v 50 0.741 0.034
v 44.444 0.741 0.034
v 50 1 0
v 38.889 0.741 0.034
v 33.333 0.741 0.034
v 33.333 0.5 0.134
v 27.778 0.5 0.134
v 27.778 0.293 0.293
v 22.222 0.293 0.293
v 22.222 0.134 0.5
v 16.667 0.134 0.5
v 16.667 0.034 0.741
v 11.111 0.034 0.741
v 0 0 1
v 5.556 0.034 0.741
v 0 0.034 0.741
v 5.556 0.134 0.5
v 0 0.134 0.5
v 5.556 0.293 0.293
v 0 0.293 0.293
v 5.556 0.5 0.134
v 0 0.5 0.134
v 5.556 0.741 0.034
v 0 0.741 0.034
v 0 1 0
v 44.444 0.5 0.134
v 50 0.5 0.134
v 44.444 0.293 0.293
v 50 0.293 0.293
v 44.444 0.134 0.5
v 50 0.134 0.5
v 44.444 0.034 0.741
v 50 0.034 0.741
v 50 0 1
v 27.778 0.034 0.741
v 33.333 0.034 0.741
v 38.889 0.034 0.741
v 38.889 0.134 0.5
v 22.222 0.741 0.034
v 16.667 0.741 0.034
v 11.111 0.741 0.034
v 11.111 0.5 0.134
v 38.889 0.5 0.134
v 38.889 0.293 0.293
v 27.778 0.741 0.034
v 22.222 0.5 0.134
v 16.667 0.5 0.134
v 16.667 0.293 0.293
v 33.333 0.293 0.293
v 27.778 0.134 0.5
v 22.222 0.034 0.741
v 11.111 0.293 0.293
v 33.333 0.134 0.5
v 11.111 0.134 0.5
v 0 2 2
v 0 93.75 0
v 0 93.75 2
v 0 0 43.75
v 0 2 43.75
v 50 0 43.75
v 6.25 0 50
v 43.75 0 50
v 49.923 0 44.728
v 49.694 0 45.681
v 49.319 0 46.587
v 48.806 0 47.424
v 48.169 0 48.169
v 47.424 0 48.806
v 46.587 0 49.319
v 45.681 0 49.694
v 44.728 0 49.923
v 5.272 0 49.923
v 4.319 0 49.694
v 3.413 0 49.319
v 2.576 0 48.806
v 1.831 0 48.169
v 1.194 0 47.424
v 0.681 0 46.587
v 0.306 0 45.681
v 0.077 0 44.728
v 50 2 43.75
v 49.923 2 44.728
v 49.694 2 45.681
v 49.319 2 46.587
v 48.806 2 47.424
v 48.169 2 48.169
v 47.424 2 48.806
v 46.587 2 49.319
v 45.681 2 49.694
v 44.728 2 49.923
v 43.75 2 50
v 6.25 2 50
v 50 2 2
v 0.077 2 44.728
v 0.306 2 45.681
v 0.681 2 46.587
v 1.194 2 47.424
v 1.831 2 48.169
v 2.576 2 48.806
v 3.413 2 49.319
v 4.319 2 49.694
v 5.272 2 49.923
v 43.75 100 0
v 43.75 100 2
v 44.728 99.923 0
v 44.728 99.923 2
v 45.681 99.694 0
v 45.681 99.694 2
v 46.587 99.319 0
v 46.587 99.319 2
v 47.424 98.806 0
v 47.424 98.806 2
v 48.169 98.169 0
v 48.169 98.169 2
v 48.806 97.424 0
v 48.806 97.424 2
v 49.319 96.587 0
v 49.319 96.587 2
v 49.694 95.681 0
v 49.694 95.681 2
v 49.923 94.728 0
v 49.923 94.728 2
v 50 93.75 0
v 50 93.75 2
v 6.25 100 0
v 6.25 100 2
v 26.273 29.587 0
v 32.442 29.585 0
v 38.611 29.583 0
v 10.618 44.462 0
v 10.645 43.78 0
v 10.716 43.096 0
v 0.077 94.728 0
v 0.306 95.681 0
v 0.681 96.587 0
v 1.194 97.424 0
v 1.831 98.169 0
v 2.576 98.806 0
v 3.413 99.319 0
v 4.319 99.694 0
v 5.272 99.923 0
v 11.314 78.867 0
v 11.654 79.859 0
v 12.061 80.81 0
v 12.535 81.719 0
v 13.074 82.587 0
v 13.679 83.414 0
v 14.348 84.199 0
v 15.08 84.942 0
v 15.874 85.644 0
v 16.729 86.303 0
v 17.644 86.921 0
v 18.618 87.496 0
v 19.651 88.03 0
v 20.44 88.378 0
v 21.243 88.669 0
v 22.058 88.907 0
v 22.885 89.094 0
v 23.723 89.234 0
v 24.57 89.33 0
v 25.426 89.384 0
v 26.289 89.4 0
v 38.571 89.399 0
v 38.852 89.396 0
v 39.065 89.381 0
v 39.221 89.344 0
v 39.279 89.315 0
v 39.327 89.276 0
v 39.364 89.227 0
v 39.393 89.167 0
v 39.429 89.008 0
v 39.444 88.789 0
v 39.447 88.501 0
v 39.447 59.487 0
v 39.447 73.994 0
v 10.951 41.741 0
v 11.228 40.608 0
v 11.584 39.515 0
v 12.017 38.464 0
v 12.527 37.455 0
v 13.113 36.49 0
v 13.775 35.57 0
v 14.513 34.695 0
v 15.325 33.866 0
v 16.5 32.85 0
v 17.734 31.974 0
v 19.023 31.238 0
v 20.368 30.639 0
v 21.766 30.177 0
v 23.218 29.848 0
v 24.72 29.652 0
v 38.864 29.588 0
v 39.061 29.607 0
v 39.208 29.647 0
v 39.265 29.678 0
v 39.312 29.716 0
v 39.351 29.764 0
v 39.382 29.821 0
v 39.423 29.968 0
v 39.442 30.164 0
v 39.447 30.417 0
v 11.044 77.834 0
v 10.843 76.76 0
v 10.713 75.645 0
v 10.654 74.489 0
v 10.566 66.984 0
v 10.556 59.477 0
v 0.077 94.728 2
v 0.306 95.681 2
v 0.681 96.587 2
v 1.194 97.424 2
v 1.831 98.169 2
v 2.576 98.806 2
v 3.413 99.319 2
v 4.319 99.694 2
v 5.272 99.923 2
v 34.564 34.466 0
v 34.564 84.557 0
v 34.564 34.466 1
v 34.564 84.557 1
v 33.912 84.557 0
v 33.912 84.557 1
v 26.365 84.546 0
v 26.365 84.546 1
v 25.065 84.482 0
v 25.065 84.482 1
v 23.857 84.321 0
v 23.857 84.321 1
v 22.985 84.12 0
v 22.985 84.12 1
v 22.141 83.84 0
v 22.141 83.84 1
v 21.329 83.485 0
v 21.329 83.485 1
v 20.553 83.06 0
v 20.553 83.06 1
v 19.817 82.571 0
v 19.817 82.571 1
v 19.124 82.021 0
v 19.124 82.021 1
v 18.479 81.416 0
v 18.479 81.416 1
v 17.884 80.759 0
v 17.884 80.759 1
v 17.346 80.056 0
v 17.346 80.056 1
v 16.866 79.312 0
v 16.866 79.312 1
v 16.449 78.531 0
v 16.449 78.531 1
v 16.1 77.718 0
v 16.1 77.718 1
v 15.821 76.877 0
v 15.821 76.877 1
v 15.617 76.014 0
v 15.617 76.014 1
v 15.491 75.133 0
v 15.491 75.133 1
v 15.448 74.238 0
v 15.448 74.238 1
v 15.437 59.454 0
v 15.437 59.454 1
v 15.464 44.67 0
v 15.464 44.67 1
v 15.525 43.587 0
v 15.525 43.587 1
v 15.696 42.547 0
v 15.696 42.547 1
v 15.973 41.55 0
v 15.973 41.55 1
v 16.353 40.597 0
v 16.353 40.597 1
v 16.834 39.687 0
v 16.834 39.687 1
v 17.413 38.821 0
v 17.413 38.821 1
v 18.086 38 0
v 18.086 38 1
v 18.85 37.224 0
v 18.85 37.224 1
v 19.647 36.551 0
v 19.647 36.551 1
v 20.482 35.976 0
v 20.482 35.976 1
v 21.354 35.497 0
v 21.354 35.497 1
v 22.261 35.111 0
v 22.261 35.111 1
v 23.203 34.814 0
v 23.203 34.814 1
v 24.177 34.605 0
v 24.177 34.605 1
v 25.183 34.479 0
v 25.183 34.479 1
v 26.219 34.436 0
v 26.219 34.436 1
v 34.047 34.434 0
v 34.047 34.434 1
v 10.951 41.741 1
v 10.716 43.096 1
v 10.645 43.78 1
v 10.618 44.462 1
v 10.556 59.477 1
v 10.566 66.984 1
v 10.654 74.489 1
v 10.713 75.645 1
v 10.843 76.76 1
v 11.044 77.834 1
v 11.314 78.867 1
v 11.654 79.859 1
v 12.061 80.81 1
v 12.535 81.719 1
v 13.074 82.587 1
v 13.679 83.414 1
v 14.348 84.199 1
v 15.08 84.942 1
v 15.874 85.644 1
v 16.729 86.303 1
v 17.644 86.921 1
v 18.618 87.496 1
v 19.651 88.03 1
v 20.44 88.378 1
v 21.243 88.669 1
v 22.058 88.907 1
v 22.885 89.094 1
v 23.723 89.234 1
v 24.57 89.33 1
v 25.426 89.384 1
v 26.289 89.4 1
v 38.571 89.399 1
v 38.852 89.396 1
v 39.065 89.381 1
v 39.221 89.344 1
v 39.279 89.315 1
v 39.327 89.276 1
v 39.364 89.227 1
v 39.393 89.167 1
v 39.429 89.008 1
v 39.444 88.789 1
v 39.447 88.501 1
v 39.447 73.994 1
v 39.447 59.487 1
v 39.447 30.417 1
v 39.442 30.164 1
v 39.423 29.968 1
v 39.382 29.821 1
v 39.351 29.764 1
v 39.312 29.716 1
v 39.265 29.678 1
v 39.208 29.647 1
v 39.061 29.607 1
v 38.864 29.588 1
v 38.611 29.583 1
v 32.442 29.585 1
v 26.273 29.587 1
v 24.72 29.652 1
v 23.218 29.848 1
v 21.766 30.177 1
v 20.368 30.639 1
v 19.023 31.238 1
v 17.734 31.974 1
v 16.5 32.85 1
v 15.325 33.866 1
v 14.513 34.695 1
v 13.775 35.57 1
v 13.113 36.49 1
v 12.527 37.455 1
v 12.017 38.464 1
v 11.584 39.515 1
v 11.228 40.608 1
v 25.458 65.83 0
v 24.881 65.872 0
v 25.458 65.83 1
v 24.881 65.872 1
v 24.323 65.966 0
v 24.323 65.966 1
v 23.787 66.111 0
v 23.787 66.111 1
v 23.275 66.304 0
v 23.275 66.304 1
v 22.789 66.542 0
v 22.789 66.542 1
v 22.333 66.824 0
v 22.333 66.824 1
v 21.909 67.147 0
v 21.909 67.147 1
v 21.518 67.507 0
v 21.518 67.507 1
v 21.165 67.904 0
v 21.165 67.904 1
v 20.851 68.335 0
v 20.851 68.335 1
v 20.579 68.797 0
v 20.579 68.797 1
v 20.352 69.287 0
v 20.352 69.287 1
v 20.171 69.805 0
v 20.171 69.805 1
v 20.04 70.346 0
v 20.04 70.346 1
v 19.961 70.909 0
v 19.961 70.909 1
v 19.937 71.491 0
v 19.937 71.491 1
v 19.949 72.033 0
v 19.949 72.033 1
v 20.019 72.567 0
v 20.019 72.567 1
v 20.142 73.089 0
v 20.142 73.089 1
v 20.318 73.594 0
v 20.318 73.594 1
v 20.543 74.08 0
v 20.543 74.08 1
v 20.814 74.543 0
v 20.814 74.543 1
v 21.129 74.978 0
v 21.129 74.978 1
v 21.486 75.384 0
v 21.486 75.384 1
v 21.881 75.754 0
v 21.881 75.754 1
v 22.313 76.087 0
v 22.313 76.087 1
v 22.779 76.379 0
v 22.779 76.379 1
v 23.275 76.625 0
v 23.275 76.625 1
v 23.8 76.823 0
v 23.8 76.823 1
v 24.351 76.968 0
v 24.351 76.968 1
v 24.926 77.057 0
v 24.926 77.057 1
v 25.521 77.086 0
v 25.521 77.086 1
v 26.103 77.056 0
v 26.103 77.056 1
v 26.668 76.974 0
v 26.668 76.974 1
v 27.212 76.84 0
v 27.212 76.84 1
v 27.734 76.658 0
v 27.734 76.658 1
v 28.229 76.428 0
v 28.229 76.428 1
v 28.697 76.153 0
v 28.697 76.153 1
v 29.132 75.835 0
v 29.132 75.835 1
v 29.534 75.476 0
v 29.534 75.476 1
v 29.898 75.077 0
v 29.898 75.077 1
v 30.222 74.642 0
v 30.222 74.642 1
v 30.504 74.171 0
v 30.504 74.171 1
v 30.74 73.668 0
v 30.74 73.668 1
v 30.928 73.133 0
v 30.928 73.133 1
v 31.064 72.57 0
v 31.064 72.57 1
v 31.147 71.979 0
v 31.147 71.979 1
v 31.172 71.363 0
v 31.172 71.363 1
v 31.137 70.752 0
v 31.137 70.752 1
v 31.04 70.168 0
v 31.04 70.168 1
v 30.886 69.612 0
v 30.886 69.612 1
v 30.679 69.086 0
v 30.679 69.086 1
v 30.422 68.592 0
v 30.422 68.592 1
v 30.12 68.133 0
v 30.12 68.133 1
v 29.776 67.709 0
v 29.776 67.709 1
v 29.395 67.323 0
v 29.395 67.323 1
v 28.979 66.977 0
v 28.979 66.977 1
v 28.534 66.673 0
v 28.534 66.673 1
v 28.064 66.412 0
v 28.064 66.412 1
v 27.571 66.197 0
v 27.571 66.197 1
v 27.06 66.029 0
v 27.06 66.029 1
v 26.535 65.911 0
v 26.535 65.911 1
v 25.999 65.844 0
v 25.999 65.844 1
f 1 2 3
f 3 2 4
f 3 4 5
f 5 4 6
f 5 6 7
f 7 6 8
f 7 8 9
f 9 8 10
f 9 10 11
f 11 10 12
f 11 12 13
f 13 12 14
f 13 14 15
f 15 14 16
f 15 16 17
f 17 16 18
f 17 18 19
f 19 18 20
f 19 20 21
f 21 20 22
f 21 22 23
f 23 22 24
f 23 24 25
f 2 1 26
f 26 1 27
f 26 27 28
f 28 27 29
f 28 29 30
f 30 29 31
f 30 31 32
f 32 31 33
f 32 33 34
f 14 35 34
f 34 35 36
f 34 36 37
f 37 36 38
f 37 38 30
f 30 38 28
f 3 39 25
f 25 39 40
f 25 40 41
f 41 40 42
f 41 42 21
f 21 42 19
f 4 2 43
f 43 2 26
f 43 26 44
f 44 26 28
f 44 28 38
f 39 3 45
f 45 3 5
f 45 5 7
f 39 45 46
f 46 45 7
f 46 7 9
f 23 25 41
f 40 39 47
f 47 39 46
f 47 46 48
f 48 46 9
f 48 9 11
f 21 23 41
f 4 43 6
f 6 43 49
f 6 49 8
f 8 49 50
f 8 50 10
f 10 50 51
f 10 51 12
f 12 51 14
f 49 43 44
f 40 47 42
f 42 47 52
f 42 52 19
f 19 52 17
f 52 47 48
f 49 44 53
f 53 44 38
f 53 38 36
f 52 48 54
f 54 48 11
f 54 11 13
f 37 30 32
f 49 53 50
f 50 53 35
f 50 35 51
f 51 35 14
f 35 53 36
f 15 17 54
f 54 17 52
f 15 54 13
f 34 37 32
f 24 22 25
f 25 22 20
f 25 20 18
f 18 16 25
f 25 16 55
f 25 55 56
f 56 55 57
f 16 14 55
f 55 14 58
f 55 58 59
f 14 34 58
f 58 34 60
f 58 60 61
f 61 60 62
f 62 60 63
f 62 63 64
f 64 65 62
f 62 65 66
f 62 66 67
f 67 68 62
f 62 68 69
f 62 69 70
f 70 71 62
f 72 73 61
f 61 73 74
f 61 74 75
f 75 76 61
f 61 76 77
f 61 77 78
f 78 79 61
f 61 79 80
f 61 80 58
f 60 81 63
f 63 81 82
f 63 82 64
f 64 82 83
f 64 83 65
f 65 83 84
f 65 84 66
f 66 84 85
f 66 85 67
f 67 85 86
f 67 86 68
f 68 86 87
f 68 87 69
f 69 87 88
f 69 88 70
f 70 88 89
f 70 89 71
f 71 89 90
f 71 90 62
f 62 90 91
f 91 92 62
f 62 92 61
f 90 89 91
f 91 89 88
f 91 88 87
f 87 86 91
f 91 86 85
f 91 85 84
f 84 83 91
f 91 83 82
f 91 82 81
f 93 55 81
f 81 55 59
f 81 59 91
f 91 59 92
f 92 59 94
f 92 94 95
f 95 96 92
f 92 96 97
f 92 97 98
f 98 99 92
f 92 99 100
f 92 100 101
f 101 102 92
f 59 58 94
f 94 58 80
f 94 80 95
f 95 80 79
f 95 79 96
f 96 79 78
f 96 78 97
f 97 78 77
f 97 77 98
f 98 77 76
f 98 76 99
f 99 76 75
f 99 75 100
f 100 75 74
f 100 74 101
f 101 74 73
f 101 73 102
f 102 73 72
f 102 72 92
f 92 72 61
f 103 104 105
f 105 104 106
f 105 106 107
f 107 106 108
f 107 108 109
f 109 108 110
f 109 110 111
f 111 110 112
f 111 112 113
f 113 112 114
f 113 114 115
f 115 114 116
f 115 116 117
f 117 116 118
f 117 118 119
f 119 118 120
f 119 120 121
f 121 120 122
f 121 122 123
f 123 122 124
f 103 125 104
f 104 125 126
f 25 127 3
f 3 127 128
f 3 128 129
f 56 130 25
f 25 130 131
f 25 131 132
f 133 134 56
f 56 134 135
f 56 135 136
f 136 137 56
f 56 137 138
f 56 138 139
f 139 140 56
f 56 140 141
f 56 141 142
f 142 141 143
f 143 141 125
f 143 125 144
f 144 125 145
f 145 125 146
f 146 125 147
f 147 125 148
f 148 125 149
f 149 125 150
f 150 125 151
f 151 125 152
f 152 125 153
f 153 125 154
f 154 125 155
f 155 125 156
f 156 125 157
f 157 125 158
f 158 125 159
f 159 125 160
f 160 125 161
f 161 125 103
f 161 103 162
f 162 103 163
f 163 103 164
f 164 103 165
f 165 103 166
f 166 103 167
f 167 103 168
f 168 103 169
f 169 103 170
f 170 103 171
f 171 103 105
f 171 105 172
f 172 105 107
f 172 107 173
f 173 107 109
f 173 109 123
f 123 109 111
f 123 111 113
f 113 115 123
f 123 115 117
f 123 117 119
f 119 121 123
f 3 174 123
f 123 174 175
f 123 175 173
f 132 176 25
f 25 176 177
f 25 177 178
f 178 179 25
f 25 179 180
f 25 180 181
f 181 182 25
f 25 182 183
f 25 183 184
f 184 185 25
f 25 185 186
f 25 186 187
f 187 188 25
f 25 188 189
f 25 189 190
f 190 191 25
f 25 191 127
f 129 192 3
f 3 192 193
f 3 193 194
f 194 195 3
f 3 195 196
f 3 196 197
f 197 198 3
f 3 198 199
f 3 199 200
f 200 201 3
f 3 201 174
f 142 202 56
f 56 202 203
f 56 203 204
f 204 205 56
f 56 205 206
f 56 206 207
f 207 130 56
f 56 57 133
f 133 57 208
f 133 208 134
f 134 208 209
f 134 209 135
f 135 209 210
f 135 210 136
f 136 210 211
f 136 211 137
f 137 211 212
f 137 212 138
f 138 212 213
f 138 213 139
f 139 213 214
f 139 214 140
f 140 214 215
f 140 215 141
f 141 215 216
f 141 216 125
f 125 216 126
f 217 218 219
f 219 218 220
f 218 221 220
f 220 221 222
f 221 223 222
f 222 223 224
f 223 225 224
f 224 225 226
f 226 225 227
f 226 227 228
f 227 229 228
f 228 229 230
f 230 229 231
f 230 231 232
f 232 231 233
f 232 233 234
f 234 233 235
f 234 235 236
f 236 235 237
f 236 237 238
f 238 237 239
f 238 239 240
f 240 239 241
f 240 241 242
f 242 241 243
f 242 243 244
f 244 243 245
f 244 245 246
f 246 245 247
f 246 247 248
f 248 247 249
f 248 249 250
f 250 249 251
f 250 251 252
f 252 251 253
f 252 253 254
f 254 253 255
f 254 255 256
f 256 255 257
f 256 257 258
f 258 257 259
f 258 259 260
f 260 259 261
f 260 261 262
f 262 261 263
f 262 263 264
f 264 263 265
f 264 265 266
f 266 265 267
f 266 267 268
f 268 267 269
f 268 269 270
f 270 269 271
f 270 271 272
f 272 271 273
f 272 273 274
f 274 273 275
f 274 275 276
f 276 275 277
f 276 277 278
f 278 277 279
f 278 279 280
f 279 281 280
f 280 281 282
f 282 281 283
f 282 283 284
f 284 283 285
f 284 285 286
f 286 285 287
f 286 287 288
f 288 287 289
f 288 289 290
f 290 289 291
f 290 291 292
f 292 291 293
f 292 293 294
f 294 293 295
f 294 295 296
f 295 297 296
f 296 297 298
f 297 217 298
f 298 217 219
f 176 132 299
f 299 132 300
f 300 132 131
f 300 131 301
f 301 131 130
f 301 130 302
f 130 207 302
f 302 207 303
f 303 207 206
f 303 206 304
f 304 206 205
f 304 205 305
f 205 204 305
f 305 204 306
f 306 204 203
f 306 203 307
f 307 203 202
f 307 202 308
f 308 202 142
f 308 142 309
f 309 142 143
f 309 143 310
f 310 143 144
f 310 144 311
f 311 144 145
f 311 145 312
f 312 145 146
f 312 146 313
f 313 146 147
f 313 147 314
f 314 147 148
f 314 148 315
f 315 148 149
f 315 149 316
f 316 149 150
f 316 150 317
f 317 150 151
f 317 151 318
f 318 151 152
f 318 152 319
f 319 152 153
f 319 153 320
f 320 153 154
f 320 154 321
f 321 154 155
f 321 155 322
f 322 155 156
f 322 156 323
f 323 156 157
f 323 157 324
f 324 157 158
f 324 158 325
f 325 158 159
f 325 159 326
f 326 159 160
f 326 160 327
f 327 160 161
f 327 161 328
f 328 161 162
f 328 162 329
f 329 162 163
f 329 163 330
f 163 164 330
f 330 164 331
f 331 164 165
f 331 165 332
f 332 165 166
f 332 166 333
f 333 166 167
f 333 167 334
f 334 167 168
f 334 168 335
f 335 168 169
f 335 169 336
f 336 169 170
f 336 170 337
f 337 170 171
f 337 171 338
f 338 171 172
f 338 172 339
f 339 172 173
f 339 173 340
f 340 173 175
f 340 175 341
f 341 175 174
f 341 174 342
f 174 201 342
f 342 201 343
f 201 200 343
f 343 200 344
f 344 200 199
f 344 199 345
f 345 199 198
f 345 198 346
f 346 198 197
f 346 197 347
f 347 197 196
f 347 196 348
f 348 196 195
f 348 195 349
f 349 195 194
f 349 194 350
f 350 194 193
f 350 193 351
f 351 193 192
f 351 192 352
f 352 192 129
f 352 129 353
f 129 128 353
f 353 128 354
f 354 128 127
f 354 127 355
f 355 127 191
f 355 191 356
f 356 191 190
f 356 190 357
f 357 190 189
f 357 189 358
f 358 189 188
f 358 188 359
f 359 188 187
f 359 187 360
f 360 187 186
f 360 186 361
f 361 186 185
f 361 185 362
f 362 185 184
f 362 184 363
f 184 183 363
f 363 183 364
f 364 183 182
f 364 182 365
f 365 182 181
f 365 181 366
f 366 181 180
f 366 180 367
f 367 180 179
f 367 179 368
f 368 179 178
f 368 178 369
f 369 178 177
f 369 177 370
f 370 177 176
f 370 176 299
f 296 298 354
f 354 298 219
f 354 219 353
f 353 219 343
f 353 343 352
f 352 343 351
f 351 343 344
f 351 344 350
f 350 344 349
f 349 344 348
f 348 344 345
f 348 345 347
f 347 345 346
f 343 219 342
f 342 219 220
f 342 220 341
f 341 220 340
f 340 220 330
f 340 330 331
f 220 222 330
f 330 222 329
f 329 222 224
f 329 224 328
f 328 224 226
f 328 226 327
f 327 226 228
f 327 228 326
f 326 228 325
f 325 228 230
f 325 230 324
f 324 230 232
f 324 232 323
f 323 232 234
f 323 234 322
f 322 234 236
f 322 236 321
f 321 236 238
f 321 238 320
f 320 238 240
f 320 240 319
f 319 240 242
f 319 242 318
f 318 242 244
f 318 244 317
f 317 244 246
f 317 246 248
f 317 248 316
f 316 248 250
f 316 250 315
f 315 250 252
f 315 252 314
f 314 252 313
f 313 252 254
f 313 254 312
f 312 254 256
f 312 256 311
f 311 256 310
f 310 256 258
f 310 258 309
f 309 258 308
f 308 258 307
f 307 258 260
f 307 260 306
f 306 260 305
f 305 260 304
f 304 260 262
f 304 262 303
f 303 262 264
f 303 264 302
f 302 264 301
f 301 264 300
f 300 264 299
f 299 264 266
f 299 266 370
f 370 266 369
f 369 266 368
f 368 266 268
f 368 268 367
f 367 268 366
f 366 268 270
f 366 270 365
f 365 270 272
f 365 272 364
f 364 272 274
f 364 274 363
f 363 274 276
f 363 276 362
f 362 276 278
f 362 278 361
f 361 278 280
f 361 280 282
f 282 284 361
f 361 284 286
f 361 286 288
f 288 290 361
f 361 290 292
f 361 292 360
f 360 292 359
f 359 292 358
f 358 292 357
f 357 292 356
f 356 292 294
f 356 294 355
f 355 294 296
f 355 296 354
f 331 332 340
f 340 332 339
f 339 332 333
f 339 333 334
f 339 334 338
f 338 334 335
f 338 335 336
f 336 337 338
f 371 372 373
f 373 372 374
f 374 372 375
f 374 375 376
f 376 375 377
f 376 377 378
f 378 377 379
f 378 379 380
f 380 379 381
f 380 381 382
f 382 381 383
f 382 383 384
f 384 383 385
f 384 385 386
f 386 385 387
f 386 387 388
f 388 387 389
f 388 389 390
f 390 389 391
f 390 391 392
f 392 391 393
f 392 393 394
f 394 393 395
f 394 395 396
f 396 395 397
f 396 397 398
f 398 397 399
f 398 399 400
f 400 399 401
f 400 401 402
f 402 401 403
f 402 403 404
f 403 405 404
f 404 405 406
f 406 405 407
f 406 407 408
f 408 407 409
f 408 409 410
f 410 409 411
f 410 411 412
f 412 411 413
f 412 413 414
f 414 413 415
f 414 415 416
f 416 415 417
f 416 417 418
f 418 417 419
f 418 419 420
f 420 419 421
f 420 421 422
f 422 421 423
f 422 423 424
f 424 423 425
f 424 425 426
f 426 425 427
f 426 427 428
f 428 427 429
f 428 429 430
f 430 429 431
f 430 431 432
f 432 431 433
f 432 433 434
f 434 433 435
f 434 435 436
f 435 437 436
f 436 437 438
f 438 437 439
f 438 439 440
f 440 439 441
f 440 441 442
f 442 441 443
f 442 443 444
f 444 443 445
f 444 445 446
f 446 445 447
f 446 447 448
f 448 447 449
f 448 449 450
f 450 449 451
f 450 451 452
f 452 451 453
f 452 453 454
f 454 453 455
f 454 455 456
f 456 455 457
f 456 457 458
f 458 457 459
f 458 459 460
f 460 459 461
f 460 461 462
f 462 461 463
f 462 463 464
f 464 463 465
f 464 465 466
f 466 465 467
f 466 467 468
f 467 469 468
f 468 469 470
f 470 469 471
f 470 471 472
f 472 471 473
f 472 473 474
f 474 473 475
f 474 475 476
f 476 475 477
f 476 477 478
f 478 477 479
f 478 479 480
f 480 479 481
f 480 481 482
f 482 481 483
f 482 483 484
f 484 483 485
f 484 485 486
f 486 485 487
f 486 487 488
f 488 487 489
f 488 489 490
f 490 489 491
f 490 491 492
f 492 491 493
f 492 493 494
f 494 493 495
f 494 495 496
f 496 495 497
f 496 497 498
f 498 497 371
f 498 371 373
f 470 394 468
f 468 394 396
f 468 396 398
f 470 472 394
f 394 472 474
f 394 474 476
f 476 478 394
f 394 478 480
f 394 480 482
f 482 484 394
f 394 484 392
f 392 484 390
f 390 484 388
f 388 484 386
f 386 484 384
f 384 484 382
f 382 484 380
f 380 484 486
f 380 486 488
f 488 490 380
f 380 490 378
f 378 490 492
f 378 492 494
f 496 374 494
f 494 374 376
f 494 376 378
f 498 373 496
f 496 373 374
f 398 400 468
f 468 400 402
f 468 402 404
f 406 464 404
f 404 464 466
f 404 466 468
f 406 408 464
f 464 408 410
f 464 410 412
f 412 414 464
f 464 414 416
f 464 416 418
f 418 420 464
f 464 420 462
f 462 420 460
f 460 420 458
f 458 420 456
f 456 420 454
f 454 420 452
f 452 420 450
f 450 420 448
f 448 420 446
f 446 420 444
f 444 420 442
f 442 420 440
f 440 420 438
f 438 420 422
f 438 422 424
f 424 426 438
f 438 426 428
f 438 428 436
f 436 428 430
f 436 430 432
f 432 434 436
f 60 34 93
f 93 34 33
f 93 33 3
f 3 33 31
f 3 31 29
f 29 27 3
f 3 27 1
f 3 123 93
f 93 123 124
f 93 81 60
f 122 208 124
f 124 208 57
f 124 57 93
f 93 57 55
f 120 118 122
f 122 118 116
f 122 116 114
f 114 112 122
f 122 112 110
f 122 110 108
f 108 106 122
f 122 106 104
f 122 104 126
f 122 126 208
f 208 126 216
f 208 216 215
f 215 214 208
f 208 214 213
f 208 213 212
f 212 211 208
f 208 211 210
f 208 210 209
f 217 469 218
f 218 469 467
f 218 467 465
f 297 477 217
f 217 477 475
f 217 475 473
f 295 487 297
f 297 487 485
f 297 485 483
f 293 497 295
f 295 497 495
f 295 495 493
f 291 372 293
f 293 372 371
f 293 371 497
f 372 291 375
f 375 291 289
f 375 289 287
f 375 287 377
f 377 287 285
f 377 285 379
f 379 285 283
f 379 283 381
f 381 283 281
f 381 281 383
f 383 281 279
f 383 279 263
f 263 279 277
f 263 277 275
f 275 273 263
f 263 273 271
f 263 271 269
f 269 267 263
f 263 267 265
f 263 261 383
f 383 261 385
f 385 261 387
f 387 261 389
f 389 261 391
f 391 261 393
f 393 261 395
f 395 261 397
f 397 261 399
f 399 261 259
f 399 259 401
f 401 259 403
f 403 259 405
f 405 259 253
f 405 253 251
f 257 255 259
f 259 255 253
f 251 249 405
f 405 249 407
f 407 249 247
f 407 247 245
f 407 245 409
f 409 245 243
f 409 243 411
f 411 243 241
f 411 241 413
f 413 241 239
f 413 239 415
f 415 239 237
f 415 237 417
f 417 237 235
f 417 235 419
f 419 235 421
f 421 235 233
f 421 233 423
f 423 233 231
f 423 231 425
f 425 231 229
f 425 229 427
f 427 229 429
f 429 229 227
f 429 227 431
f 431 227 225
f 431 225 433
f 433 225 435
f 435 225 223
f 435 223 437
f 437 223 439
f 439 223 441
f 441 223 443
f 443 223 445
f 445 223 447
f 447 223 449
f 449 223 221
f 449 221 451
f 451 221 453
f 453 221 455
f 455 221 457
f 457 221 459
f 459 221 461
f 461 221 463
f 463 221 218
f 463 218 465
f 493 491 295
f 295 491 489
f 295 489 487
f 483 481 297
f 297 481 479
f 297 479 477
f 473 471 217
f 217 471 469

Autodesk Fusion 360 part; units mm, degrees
sketch "Sketch1" plane through (0, 0, 0) normal (0, 0, 1) x (1, 0, 0)
  line L0 (0, 0) -> (50, 0)
  line L1 (50, 0) -> (50, 100)
  line L2 (50, 100) -> (0, 100)
  line L3 (0, 100) -> (0, 0)
  line L4 (0, 0) -> (50, 0)
  line L5 (50, 0) -> (50, 2)
  line L6 (50, 2) -> (0, 2)
  line L7 (0, 2) -> (0, 0)
  line L8 (34.5636, 34.4661) -> (34.5636, 84.5568)
  line L9 (34.5636, 84.5568) -> (33.9119, 84.5568)
  spline S0 degree 3 poles (33.9119, 84.5568) (31.3963, 84.5567) (28.8804, 84.5751) (26.365, 84.5464) knots 2 2 2 2 3 3 3 3
  ellipse E0 centre (47.6158, 60.5322) end of major axis (76.3213, 39.5009) minor radius 14.3732 (26.365, 84.5464) -> (23.8572, 84.3209) ccw
  spline S1 degree 3 poles (23.8572, 84.3209) (19.1392, 83.4681) (15.4509, 79.0364) (15.4484, 74.2383) (15.4432, 64.3821) (15.418, 54.5257) (15.4644, 44.6697) (15.4782, 41.7272) (16.6921, 39.2323) (18.8504, 37.224) knots 4 4 4 4 5 5 5 6 6 6 7 7 7 7
  spline S2 degree 3 poles (18.8504, 37.224) (20.9228, 35.2959) (23.4181, 34.4467) (26.2187, 34.4355) knots 7 7 7 7 8 8 8 8
  spline S3 degree 3 poles (26.2187, 34.4355) (28.8282, 34.4249) (31.4379, 34.4327) (34.0474, 34.4345) knots 8 8 8 8 9 9 9 9
  spline S4 degree 3 poles (34.0474, 34.4345) (34.2116, 34.4346) (34.3757, 34.454) (34.5636, 34.4661) knots 9 9 9 9 10 10 10 10
  spline S5 degree 3 poles (39.447, 59.4869) (39.447, 49.797) (39.447, 40.107) (39.4468, 30.4169) knots 0 0 0 0 1 1 1 1
  spline S6 degree 3 poles (39.4468, 30.4169) (39.4468, 29.6608) (39.3671, 29.5827) (38.611, 29.5829) knots 1 1 1 1 2 2 2 2
  spline S7 degree 3 poles (38.611, 29.5829) (34.4982, 29.5843) (30.3857, 29.5861) (26.2732, 29.5868) (22.066, 29.5875) (18.382, 30.9667) (15.3248, 33.8662) knots 2 2 2 2 3 3 3 4 4 4 4
  ellipse E1 centre (94.1785, 83.9771) end of major axis (175.7393, 130.6607) minor radius 36.8762 (10.9507, 41.7409) -> (15.3248, 33.8662) ccw
  spline S8 degree 3 poles (10.9507, 41.7409) (10.766, 42.6338) (10.6197, 43.5543) (10.6175, 44.4625) knots 5 5 5 5 6 6 6 6
  spline S9 degree 3 poles (10.6175, 44.4625) (10.5946, 54.4717) (10.465, 64.4835) (10.6545, 74.4892) knots 6 6 6 6 7 7 7 7
  spline S10 degree 3 poles (10.6545, 74.4892) (10.7735, 80.7614) (13.9901, 85.298) (19.6506, 88.0297) (21.7359, 89.036) (23.9778, 89.4054) (26.2894, 89.3998) (30.3831, 89.3897) (34.477, 89.3984) (38.5708, 89.3992) knots 7 7 7 7 8 8 8 9 9 9 10 10 10 10
  spline S11 degree 3 poles (38.5708, 89.3992) (39.4186, 89.3993) (39.447, 89.3705) (39.447, 88.5007) (39.447, 78.8293) (39.447, 69.1582) (39.447, 59.4869) knots 10 10 10 10 11 11 11 12 12 12 12
  spline S12 degree 3 poles (19.9368, 71.4906) (19.8468, 74.4011) (22.2958, 77.0965) (25.5212, 77.0856) knots 0 0 0 0 1 1 1 1
  spline S13 degree 3 poles (25.5212, 77.0856) (28.6661, 77.0751) (31.1925, 74.7102) (31.1724, 71.3632) knots 1 1 1 1 2 2 2 2
  spline S14 degree 3 poles (31.1724, 71.3632) (31.1523, 68.0382) (28.3565, 65.7588) (25.4577, 65.8303) knots 2 2 2 2 3 3 3 3
  spline S15 degree 3 poles (25.4577, 65.8303) (22.3345, 65.9072) (19.9164, 68.3391) (19.9368, 71.4906) knots 3 3 3 3 4 4 4 4
  dimension "d1" = 50
  dimension "d2" = 100
  dimension "d3" = 2
extrude "Extrude1" add sketch "Sketch1" along normal blind 2 contours L1 L2 L3 L6 | L8 L9 S0 E0 S1 S2 S3 S4 | S5 S6 S7 E1 S8 S9 S10 S11 | S12 S13 S14 S15
extrude "Extrude2" cut sketch "Sketch1" along normal blind 1 contours S5 S6 S7 E1 S8 S9 S10 S11 | S12 S13 S14 S15
extrude "Extrude3" add sketch "Sketch1" along normal blind 50 contours L0 L1 L3 L4 L5 L6 L7
fillet "Fillet1" radius 6.25 2 edges at (0, 100, 1) (50, 100, 1)
fillet "Fillet2" radius 6.25 2 edges at (0, 1, 50) (50, 1, 50)
fillet "Fillet3" radius 1 1 edges at (25, 0, 0)
